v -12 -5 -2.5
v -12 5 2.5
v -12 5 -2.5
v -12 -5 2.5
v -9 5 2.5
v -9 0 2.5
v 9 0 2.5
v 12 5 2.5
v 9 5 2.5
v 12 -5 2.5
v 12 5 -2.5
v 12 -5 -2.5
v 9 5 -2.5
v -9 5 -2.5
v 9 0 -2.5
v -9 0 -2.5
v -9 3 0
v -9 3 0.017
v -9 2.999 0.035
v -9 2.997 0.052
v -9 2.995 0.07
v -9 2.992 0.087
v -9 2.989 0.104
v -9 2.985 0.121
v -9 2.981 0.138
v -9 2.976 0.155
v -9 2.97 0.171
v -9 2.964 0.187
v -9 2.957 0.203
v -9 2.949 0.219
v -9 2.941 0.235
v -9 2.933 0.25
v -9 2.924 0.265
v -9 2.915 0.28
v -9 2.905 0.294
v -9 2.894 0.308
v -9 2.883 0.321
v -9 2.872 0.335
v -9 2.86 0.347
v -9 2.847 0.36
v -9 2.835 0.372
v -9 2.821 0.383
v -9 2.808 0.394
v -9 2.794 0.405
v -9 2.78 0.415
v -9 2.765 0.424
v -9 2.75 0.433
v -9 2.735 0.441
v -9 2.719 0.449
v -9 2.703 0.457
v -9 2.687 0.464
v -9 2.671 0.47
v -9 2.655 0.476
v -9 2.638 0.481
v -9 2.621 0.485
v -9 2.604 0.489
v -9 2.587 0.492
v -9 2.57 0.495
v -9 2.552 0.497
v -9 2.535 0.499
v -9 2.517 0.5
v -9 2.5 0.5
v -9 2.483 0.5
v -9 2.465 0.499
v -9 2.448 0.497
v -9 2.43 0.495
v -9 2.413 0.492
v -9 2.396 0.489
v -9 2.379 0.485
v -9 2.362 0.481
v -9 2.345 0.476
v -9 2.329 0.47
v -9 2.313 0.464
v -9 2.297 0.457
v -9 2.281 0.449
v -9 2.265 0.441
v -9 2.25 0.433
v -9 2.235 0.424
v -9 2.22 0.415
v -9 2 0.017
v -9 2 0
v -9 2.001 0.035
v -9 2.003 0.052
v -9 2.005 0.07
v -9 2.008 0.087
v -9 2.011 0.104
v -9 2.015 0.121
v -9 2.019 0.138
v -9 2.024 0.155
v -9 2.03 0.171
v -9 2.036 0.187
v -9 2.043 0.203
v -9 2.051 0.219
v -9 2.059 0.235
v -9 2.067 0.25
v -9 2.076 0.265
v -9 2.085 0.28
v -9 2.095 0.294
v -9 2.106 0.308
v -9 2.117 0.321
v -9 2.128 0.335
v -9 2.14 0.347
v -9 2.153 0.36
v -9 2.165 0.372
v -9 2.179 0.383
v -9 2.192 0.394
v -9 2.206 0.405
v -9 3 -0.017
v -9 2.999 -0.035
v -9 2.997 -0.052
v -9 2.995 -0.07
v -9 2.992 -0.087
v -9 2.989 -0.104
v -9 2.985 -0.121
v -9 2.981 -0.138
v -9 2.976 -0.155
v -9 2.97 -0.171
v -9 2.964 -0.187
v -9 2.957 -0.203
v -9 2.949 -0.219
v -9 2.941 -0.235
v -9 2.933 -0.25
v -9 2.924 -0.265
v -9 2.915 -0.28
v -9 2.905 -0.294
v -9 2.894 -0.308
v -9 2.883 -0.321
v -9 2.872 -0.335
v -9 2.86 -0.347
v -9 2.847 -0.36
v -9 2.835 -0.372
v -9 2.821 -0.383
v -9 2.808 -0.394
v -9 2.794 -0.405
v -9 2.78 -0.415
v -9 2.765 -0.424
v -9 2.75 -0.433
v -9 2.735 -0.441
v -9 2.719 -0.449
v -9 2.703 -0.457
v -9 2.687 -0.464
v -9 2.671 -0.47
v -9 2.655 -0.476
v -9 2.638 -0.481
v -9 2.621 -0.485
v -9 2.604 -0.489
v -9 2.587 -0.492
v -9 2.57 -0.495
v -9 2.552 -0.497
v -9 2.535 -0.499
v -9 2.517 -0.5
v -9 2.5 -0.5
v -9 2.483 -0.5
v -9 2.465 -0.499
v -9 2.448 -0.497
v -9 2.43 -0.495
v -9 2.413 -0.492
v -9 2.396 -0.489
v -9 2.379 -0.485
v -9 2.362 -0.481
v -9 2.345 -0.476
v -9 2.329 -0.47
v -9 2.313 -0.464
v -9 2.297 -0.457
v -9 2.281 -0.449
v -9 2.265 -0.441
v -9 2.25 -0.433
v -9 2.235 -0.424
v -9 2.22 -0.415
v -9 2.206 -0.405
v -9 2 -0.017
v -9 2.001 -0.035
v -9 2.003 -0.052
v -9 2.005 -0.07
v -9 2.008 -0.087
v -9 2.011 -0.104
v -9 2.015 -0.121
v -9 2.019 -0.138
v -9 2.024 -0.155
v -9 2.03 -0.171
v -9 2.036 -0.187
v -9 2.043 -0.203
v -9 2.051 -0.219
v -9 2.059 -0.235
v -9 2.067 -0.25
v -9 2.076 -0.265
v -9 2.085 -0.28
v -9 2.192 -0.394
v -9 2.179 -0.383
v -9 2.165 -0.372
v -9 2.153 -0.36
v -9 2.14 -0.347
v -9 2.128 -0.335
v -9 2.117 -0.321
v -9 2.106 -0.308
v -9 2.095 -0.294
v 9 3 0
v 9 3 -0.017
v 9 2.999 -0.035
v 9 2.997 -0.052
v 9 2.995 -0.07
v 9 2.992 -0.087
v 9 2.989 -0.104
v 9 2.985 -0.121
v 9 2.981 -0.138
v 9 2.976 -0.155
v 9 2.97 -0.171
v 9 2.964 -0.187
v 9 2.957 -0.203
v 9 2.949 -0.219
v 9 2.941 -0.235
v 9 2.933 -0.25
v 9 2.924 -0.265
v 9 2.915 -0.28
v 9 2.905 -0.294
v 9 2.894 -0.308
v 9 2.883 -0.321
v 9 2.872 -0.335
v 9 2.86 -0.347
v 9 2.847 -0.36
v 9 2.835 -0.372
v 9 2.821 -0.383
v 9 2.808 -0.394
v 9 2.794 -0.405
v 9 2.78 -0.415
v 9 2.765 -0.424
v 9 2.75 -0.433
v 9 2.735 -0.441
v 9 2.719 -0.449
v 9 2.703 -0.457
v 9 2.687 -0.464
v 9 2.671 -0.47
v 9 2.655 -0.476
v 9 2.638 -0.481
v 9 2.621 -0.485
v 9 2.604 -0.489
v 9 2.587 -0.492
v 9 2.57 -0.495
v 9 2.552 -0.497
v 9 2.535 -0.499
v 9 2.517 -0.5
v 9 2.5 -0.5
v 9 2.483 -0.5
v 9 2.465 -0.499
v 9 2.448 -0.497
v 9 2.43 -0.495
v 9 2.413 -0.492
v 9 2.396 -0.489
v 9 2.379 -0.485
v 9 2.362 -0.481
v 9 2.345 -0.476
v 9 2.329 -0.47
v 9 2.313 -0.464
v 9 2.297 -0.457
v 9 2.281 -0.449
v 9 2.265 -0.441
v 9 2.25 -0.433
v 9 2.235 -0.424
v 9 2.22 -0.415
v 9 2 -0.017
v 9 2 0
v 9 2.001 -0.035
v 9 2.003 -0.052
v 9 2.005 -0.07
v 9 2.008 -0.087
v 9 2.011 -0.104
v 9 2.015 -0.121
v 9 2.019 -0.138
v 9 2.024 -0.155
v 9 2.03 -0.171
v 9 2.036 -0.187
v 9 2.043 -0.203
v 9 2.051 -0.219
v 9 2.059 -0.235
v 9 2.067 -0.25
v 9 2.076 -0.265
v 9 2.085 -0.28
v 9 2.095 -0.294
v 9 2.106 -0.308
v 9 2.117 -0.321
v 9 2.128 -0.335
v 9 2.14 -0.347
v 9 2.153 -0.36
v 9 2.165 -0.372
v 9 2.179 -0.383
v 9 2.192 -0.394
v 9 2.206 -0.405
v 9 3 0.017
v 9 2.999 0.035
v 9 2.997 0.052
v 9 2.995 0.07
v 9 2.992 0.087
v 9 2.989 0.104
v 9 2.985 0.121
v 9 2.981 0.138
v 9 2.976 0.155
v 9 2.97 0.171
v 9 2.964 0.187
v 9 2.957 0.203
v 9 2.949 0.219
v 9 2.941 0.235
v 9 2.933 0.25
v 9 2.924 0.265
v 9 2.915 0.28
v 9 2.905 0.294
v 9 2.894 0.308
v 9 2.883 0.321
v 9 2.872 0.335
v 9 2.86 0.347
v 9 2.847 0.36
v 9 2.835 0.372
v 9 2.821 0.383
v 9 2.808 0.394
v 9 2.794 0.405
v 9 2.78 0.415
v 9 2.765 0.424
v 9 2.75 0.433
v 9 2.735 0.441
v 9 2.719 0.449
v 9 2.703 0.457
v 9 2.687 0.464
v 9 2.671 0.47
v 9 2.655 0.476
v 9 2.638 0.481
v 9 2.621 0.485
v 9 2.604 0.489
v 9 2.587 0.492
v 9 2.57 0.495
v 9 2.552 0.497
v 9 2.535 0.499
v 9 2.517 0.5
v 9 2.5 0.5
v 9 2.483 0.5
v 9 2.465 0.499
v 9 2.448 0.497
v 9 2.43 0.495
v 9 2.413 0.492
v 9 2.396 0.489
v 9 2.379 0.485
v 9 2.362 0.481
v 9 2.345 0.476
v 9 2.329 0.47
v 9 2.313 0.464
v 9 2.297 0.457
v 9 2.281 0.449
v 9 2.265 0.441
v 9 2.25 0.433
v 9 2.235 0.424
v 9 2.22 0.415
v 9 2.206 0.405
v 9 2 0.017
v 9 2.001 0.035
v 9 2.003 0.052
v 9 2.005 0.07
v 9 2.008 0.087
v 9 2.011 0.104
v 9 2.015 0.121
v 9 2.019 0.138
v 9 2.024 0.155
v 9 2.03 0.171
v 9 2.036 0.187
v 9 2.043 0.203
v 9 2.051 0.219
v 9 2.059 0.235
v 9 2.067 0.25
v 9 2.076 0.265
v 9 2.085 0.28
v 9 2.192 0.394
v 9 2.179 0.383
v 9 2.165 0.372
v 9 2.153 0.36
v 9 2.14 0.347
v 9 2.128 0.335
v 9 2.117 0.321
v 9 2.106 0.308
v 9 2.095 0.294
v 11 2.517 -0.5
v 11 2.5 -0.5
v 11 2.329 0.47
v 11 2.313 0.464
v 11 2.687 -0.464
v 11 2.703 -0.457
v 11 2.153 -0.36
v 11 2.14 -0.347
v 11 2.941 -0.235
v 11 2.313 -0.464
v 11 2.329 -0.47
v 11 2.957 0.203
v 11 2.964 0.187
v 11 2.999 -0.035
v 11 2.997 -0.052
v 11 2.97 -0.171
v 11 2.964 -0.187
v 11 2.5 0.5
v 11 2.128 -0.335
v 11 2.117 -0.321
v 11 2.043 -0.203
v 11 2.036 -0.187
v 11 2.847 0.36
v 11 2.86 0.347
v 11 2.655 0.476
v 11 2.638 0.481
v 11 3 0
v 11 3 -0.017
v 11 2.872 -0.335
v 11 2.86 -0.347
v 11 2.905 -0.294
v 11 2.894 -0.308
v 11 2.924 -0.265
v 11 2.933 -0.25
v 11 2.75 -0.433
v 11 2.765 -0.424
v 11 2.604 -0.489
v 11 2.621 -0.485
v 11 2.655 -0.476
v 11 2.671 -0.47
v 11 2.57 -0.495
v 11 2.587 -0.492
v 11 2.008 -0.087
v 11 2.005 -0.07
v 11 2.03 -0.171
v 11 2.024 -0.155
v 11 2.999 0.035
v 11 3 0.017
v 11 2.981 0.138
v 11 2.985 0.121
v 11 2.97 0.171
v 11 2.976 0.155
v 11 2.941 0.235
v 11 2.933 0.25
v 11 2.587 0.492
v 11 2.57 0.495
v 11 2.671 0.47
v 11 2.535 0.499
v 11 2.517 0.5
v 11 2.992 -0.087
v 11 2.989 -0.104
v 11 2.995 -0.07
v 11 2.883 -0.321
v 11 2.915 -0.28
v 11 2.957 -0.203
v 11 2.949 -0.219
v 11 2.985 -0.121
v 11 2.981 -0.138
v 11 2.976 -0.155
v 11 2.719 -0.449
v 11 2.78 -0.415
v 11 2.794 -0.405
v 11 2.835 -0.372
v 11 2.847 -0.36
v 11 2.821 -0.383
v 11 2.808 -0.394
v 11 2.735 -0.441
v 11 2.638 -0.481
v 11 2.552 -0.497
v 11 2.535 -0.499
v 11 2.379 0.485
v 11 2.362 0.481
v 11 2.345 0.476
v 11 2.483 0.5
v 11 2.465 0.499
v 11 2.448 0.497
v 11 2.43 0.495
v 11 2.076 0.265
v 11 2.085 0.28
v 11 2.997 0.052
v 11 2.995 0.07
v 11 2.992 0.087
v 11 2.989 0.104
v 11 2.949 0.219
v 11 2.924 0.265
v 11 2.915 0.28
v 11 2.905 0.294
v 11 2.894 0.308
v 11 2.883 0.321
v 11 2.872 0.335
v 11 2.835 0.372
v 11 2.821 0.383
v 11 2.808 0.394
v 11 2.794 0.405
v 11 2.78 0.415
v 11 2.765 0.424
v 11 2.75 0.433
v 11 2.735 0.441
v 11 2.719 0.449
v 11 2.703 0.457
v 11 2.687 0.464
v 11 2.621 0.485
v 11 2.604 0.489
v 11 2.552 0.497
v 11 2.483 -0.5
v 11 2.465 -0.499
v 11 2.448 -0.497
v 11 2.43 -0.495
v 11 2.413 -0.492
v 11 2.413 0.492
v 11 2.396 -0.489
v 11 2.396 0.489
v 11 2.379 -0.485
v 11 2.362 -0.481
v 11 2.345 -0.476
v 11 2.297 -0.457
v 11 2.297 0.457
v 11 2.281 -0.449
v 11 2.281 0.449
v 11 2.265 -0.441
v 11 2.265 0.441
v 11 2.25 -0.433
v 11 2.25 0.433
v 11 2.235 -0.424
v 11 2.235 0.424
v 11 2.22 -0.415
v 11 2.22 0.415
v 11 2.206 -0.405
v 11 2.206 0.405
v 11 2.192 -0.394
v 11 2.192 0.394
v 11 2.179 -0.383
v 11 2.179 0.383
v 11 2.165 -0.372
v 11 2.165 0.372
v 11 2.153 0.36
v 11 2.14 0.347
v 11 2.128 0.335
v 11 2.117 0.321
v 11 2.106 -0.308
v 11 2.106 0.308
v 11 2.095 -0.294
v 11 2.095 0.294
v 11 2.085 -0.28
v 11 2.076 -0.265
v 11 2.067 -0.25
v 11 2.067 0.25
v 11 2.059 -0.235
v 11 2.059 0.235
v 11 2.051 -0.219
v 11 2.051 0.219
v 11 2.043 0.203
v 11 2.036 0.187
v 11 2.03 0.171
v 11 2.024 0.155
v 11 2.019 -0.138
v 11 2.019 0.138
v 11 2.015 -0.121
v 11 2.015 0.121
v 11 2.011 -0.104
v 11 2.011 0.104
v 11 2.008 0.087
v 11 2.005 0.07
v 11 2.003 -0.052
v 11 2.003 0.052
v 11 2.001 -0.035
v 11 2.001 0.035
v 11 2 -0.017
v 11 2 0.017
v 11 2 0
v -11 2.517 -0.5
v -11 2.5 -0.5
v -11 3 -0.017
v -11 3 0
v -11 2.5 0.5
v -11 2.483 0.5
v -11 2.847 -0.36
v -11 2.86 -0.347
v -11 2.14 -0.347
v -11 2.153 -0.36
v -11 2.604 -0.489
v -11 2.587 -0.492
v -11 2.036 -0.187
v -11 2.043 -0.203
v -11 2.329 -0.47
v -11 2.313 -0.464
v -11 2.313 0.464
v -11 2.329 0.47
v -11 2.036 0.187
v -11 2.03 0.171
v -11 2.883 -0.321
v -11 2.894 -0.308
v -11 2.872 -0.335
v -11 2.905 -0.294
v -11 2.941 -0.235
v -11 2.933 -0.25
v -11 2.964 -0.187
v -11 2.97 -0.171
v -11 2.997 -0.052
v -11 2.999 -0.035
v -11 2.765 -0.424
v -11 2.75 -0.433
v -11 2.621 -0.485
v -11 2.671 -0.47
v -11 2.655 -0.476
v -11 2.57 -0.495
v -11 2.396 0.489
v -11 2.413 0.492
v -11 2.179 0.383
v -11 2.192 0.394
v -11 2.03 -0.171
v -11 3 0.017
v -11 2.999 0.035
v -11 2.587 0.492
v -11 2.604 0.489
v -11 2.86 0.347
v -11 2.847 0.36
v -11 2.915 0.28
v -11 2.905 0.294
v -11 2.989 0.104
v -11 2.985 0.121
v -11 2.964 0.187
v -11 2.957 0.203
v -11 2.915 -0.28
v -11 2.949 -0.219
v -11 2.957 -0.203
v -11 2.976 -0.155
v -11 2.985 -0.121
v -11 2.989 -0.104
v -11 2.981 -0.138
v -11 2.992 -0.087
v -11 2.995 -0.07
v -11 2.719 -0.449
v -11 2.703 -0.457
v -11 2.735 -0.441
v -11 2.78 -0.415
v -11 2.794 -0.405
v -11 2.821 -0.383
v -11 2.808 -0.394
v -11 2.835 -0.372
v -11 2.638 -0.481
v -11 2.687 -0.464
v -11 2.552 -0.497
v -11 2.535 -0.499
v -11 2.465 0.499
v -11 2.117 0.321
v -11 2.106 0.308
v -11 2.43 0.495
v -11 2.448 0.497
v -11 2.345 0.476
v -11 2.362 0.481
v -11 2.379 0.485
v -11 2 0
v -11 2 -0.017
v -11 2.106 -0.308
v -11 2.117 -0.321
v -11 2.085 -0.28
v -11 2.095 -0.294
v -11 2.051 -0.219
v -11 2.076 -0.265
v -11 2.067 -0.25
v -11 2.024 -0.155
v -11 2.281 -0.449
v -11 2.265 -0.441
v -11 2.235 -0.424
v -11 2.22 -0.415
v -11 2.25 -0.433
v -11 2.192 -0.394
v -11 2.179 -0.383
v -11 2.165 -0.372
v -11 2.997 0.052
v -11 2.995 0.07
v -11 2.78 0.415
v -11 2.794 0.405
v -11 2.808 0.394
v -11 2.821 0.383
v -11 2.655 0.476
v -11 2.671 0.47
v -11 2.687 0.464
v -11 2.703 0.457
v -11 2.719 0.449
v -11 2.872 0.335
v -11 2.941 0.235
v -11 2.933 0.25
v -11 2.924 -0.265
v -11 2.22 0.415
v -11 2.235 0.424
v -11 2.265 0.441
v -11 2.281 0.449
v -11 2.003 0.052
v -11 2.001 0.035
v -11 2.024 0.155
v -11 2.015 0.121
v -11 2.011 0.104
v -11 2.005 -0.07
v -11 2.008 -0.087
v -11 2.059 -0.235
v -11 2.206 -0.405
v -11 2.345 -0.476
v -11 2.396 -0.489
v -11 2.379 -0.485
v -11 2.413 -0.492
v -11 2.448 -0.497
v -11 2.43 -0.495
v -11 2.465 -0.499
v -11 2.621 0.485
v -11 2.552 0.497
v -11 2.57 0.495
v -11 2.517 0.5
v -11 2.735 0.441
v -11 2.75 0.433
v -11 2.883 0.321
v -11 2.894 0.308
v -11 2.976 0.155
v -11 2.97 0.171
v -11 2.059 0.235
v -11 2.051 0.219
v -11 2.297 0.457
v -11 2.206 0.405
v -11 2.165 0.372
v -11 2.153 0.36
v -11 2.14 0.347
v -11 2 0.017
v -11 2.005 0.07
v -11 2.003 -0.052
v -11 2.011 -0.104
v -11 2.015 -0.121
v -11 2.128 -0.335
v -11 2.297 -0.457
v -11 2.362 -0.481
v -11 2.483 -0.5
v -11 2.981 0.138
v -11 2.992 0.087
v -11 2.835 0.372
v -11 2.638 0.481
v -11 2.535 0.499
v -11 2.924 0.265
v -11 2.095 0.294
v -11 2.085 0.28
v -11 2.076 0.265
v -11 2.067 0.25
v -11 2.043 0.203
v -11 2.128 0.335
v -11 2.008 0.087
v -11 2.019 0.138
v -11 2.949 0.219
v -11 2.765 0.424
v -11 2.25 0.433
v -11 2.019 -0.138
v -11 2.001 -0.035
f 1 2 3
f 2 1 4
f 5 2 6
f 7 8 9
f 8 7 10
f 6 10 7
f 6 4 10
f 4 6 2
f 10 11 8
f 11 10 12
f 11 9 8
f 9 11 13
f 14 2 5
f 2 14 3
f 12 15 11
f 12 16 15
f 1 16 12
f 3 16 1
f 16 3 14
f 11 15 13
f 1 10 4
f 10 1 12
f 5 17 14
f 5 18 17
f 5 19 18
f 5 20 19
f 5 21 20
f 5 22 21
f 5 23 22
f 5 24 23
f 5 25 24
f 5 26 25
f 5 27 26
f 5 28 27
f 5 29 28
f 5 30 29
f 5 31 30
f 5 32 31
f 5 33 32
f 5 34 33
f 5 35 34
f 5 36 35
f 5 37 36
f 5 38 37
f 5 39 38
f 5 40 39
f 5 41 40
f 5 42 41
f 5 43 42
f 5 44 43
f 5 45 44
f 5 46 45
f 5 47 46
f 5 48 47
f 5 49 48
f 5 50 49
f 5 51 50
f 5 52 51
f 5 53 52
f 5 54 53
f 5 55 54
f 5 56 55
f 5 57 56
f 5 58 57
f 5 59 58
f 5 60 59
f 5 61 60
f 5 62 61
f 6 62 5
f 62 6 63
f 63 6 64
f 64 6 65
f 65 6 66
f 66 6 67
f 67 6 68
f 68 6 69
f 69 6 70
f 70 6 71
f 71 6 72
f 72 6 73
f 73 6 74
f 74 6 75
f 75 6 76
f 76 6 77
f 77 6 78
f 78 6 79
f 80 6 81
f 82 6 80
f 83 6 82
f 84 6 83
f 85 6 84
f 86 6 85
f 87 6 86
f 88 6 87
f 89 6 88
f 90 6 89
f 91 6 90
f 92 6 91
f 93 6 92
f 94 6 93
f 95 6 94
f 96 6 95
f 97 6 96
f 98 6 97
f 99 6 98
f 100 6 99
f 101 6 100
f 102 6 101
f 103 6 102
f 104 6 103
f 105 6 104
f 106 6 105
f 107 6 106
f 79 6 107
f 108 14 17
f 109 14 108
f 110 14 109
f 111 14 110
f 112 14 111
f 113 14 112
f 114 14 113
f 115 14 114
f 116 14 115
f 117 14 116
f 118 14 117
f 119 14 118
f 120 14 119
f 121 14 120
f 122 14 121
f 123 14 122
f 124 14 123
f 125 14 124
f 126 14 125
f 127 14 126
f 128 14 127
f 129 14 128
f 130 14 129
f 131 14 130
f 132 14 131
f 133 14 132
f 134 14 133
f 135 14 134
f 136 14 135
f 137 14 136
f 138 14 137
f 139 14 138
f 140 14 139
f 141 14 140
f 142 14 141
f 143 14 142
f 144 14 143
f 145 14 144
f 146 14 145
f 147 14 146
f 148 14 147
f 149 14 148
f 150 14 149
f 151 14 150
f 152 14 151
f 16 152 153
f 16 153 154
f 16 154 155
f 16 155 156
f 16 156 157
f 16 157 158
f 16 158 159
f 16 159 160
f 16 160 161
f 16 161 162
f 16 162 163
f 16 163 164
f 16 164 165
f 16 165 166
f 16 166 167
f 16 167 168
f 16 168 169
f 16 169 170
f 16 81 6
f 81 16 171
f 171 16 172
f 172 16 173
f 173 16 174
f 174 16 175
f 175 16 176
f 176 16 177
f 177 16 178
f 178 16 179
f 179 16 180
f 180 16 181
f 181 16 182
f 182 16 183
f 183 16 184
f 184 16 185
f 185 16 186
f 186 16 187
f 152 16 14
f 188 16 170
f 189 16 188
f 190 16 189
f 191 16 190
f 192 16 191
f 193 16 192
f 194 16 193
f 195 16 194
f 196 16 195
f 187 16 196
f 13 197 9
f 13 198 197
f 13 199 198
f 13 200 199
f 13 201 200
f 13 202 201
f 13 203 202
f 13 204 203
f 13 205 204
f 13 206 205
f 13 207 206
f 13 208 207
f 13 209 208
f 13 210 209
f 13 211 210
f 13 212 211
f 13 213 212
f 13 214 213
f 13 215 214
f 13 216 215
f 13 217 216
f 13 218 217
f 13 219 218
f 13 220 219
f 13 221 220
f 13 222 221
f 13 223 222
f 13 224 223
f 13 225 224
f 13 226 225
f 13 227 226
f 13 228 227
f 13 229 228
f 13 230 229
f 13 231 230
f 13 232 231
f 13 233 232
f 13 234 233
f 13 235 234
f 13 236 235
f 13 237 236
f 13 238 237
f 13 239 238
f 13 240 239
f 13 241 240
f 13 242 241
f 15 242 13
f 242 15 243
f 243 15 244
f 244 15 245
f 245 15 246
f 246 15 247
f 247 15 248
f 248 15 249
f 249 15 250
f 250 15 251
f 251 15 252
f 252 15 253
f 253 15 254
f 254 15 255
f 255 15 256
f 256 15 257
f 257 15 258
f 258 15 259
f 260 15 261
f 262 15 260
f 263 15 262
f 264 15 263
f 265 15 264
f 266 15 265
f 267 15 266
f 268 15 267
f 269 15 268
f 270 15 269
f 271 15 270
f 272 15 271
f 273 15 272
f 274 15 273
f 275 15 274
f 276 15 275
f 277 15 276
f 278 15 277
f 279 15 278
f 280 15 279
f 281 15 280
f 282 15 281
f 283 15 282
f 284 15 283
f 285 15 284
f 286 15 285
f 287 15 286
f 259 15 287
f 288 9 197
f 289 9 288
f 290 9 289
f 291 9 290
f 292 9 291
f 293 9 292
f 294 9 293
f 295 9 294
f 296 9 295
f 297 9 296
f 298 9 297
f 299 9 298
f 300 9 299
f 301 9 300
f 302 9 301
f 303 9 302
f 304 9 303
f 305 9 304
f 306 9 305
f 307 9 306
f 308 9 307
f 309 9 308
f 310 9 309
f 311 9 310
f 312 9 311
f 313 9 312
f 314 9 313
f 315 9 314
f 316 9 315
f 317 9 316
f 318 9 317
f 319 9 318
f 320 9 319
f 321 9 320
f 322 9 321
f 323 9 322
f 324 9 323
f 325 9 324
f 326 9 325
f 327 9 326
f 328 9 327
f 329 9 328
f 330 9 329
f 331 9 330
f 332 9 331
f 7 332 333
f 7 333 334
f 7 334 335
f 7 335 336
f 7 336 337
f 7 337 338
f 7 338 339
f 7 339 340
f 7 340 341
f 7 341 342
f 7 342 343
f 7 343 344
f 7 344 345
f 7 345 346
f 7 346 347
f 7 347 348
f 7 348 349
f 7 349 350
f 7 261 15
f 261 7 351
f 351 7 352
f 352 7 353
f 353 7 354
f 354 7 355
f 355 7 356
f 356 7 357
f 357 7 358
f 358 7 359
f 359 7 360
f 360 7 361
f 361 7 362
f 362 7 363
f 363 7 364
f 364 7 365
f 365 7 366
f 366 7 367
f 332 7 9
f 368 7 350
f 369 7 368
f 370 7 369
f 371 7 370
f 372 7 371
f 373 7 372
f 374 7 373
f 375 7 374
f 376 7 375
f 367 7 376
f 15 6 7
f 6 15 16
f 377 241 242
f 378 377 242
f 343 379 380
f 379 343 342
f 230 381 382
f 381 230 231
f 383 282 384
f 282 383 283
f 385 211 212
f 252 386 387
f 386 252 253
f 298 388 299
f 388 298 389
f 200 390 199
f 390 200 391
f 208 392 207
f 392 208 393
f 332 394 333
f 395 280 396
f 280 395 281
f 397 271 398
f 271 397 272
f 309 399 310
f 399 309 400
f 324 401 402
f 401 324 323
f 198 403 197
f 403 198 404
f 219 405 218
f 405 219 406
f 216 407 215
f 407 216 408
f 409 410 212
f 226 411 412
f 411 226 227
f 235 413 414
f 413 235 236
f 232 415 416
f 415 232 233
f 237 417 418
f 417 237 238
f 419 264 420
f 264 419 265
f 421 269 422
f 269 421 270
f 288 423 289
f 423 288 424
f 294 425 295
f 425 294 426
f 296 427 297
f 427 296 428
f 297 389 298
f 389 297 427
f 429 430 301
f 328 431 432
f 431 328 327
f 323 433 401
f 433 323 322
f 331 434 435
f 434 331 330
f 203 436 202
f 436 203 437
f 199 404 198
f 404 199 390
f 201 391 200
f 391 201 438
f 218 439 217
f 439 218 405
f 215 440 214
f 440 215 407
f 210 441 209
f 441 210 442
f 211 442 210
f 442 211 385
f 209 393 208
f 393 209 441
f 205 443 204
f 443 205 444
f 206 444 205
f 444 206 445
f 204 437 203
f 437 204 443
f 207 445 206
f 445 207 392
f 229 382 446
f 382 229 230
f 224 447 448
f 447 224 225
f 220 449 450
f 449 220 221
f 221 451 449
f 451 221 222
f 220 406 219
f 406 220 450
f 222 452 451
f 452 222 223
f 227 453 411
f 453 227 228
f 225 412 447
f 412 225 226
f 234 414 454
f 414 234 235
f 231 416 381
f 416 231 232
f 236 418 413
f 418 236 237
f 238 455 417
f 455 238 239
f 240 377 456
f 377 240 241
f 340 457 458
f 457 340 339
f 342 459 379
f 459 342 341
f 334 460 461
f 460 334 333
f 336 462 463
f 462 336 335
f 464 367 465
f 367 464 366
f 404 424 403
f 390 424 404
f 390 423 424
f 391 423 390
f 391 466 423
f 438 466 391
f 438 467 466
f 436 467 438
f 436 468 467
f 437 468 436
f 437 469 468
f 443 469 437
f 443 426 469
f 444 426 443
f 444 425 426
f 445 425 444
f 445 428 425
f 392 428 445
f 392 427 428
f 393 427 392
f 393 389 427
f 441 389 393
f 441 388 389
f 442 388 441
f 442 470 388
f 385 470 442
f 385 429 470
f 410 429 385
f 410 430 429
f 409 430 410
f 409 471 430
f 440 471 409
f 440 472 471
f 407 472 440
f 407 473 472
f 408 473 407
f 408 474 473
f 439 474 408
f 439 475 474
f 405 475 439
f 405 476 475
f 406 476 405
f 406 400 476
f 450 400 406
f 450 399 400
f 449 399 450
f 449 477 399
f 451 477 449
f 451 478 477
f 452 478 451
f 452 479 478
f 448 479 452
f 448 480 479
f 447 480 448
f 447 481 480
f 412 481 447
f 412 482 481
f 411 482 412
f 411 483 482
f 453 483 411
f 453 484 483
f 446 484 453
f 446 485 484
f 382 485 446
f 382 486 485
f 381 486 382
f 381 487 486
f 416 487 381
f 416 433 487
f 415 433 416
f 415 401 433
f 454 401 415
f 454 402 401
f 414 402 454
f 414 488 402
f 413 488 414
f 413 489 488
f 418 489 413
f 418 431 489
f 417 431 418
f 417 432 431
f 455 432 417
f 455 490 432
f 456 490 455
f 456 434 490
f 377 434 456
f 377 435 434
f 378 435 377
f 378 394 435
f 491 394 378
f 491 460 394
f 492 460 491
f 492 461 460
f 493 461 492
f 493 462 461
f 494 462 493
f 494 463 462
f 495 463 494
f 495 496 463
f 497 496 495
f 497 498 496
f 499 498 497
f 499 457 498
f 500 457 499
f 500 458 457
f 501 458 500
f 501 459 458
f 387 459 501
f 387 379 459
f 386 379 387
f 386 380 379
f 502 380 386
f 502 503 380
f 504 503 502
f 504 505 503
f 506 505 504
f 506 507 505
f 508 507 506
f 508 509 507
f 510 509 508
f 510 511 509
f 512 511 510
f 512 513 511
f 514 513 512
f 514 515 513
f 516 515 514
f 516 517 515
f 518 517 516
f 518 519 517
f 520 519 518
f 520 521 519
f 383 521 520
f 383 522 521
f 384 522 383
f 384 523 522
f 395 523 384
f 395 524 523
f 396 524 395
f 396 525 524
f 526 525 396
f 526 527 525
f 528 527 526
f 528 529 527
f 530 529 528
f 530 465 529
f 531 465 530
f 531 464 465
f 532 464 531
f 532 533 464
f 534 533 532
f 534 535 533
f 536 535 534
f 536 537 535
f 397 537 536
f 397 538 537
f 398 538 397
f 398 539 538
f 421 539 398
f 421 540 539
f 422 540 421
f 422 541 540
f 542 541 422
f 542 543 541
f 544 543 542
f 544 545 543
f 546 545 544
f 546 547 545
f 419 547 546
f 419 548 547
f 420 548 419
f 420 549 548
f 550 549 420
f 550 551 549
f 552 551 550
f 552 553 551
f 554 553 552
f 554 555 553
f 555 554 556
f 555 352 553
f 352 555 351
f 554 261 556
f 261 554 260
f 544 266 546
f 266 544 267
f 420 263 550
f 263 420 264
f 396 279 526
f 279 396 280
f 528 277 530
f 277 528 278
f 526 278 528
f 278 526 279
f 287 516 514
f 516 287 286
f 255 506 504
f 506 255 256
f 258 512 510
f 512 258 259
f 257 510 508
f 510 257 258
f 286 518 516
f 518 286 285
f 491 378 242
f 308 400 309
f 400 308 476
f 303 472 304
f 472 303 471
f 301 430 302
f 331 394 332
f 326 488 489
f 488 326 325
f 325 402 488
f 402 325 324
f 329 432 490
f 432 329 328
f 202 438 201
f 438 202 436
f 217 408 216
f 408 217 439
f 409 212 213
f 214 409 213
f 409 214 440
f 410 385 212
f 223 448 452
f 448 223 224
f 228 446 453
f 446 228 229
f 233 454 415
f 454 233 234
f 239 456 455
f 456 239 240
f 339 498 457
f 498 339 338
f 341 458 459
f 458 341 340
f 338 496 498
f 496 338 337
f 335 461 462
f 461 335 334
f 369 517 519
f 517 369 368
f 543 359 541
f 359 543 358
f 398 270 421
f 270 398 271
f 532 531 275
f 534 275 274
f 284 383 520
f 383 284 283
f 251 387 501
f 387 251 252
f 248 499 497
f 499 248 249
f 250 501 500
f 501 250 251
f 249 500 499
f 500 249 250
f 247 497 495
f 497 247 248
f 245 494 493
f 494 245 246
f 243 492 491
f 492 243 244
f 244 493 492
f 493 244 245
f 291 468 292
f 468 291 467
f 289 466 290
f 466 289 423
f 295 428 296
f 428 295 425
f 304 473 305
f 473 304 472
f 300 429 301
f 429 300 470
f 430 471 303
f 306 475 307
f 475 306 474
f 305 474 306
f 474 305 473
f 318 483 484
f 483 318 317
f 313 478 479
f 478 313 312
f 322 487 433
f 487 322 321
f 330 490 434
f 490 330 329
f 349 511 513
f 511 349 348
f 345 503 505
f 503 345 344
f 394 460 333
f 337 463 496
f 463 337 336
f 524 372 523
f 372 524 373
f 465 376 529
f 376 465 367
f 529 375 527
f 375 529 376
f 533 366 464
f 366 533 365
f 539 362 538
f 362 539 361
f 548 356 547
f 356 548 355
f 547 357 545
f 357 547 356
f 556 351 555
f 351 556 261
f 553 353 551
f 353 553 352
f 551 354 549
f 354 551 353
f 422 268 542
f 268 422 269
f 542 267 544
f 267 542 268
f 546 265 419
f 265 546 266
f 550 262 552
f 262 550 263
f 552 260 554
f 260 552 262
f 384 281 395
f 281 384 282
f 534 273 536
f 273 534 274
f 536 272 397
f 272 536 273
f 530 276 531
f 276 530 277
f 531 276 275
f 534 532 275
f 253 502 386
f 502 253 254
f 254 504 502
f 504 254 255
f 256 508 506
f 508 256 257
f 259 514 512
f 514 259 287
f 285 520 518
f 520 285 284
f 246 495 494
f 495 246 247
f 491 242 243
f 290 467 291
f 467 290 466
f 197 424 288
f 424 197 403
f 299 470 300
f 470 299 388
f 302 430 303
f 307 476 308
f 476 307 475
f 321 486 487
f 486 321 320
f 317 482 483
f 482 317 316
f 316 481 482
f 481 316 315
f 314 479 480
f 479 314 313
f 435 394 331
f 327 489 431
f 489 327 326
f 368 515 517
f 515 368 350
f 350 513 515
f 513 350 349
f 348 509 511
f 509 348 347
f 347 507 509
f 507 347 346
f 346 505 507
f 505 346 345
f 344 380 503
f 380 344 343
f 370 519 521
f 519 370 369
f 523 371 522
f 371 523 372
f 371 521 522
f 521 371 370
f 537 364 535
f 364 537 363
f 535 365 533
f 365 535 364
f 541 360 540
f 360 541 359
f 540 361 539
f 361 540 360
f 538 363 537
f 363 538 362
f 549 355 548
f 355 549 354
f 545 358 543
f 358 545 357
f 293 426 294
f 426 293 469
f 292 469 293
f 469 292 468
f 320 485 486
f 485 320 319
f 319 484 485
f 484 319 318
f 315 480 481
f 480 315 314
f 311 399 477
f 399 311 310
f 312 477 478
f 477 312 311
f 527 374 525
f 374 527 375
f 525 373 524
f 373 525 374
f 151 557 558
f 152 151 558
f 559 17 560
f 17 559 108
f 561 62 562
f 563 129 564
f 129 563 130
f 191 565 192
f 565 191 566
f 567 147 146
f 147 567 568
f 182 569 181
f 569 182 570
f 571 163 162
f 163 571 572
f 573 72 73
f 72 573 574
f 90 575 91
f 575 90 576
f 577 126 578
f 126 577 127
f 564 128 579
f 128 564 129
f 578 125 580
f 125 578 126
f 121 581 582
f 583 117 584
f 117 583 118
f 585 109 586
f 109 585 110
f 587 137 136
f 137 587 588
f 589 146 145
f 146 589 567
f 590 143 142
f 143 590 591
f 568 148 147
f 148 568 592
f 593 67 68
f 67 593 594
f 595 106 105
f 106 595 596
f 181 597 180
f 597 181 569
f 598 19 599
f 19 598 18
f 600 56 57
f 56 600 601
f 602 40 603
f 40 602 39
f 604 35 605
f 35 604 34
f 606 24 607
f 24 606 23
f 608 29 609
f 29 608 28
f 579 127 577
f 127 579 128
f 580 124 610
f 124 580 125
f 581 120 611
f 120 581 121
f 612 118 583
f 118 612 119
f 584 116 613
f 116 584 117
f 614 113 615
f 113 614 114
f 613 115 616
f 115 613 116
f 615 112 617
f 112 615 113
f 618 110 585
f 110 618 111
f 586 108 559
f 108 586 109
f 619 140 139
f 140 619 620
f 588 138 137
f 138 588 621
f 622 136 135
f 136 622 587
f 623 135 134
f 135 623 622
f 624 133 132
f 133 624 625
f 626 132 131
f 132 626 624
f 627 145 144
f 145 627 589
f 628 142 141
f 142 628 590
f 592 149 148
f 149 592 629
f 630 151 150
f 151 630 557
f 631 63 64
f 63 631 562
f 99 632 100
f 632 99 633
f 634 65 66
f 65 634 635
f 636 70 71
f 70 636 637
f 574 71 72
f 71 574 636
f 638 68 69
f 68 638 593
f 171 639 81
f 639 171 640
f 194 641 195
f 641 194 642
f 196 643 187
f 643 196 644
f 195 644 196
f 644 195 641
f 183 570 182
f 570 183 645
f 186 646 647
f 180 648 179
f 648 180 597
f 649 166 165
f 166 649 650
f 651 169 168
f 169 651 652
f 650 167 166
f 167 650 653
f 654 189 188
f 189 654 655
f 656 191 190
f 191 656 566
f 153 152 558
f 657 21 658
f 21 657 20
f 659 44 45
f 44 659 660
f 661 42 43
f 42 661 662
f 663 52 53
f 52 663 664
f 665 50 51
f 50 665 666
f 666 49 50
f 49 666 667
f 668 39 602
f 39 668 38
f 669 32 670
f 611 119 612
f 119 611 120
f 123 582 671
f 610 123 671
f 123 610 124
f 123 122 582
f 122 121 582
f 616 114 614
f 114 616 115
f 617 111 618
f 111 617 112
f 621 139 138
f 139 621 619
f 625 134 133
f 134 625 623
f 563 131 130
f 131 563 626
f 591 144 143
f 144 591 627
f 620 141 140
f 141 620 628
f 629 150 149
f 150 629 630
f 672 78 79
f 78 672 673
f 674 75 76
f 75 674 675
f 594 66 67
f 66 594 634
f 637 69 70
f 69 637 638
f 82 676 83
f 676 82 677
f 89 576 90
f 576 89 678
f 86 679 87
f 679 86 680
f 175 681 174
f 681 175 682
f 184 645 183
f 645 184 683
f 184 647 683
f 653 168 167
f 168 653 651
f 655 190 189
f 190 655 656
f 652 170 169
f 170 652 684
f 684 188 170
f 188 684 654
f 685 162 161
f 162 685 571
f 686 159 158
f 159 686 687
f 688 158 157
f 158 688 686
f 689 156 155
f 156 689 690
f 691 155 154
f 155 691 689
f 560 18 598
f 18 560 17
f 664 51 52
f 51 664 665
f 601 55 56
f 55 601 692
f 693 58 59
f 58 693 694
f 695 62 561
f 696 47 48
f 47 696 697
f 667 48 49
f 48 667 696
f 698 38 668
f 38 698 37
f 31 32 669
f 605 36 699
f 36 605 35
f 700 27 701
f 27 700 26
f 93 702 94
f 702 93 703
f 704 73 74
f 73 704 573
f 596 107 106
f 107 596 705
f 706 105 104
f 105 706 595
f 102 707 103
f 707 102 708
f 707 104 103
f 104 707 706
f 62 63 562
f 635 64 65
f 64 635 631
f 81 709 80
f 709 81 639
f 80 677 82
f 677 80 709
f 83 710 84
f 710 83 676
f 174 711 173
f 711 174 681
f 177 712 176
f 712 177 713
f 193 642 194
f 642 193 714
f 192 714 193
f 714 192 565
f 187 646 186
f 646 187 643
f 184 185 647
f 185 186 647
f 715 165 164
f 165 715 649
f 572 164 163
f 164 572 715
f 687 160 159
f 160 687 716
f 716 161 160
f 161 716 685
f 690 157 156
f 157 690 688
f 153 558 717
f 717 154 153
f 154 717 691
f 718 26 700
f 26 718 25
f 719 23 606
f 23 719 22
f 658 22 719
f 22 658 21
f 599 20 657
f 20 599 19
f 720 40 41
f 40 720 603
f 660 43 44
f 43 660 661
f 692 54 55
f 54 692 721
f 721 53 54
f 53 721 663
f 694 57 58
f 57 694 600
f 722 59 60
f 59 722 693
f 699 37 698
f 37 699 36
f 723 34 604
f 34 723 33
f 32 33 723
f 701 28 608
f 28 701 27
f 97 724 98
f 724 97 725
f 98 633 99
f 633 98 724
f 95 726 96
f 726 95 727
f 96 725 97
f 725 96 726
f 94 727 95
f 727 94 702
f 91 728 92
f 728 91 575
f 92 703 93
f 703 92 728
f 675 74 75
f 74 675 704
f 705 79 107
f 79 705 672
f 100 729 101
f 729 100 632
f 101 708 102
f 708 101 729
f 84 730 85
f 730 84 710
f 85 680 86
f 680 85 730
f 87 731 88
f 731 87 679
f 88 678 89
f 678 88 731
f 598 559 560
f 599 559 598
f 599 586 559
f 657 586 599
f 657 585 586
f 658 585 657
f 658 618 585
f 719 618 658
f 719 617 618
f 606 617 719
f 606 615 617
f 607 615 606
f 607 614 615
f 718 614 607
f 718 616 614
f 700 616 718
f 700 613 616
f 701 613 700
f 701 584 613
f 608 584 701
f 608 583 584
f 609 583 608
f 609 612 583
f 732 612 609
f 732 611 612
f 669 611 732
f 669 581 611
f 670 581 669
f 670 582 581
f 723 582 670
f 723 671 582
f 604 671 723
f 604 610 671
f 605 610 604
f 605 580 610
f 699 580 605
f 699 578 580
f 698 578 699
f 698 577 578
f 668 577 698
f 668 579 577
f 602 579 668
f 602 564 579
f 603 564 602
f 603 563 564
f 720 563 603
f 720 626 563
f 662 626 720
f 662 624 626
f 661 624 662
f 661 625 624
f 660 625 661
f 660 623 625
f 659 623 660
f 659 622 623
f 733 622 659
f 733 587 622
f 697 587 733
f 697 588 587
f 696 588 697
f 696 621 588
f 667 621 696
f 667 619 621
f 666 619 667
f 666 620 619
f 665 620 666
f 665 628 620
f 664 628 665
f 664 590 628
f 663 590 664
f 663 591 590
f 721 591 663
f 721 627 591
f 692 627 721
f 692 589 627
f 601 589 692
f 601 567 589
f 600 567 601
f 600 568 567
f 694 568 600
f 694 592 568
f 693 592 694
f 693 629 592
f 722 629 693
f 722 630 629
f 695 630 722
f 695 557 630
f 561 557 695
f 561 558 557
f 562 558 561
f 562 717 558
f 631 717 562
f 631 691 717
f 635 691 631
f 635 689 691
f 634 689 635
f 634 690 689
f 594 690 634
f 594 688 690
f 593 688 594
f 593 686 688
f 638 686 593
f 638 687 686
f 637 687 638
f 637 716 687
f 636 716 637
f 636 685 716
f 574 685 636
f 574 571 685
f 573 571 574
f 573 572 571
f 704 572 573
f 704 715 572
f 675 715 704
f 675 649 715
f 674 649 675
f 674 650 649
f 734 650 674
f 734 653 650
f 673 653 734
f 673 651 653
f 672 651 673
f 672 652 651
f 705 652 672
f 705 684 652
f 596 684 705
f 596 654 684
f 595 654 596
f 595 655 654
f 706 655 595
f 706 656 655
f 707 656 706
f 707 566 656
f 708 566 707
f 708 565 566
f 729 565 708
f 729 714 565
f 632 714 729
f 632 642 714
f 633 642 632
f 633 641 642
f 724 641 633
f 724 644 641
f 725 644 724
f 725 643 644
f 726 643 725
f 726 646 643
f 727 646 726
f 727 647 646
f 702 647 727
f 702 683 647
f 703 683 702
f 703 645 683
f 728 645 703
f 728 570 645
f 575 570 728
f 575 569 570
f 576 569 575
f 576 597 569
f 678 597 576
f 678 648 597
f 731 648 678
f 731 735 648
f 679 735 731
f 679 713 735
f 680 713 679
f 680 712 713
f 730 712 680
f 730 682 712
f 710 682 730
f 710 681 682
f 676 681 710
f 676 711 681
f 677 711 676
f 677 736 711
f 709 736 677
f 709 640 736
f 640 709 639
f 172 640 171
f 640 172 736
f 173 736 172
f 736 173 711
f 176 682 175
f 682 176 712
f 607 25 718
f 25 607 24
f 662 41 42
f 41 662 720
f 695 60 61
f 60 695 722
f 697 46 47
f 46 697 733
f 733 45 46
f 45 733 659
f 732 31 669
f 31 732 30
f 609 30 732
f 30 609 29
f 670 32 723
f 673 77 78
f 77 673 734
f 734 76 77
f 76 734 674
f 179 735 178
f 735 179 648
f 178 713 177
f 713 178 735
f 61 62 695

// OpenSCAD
$fn = 180;

difference() {
    cube([24,10,5], center=true);
    translate([0,2.5,0]) cube([18,5,5], center=true);
    translate([10,2.5,0]) rotate([0,90,0]) cylinder(r=0.5, h=2, center=true);
    translate([-10,2.5,0]) rotate([0,90,0]) cylinder(r=0.5, h=2, center=true);
}
